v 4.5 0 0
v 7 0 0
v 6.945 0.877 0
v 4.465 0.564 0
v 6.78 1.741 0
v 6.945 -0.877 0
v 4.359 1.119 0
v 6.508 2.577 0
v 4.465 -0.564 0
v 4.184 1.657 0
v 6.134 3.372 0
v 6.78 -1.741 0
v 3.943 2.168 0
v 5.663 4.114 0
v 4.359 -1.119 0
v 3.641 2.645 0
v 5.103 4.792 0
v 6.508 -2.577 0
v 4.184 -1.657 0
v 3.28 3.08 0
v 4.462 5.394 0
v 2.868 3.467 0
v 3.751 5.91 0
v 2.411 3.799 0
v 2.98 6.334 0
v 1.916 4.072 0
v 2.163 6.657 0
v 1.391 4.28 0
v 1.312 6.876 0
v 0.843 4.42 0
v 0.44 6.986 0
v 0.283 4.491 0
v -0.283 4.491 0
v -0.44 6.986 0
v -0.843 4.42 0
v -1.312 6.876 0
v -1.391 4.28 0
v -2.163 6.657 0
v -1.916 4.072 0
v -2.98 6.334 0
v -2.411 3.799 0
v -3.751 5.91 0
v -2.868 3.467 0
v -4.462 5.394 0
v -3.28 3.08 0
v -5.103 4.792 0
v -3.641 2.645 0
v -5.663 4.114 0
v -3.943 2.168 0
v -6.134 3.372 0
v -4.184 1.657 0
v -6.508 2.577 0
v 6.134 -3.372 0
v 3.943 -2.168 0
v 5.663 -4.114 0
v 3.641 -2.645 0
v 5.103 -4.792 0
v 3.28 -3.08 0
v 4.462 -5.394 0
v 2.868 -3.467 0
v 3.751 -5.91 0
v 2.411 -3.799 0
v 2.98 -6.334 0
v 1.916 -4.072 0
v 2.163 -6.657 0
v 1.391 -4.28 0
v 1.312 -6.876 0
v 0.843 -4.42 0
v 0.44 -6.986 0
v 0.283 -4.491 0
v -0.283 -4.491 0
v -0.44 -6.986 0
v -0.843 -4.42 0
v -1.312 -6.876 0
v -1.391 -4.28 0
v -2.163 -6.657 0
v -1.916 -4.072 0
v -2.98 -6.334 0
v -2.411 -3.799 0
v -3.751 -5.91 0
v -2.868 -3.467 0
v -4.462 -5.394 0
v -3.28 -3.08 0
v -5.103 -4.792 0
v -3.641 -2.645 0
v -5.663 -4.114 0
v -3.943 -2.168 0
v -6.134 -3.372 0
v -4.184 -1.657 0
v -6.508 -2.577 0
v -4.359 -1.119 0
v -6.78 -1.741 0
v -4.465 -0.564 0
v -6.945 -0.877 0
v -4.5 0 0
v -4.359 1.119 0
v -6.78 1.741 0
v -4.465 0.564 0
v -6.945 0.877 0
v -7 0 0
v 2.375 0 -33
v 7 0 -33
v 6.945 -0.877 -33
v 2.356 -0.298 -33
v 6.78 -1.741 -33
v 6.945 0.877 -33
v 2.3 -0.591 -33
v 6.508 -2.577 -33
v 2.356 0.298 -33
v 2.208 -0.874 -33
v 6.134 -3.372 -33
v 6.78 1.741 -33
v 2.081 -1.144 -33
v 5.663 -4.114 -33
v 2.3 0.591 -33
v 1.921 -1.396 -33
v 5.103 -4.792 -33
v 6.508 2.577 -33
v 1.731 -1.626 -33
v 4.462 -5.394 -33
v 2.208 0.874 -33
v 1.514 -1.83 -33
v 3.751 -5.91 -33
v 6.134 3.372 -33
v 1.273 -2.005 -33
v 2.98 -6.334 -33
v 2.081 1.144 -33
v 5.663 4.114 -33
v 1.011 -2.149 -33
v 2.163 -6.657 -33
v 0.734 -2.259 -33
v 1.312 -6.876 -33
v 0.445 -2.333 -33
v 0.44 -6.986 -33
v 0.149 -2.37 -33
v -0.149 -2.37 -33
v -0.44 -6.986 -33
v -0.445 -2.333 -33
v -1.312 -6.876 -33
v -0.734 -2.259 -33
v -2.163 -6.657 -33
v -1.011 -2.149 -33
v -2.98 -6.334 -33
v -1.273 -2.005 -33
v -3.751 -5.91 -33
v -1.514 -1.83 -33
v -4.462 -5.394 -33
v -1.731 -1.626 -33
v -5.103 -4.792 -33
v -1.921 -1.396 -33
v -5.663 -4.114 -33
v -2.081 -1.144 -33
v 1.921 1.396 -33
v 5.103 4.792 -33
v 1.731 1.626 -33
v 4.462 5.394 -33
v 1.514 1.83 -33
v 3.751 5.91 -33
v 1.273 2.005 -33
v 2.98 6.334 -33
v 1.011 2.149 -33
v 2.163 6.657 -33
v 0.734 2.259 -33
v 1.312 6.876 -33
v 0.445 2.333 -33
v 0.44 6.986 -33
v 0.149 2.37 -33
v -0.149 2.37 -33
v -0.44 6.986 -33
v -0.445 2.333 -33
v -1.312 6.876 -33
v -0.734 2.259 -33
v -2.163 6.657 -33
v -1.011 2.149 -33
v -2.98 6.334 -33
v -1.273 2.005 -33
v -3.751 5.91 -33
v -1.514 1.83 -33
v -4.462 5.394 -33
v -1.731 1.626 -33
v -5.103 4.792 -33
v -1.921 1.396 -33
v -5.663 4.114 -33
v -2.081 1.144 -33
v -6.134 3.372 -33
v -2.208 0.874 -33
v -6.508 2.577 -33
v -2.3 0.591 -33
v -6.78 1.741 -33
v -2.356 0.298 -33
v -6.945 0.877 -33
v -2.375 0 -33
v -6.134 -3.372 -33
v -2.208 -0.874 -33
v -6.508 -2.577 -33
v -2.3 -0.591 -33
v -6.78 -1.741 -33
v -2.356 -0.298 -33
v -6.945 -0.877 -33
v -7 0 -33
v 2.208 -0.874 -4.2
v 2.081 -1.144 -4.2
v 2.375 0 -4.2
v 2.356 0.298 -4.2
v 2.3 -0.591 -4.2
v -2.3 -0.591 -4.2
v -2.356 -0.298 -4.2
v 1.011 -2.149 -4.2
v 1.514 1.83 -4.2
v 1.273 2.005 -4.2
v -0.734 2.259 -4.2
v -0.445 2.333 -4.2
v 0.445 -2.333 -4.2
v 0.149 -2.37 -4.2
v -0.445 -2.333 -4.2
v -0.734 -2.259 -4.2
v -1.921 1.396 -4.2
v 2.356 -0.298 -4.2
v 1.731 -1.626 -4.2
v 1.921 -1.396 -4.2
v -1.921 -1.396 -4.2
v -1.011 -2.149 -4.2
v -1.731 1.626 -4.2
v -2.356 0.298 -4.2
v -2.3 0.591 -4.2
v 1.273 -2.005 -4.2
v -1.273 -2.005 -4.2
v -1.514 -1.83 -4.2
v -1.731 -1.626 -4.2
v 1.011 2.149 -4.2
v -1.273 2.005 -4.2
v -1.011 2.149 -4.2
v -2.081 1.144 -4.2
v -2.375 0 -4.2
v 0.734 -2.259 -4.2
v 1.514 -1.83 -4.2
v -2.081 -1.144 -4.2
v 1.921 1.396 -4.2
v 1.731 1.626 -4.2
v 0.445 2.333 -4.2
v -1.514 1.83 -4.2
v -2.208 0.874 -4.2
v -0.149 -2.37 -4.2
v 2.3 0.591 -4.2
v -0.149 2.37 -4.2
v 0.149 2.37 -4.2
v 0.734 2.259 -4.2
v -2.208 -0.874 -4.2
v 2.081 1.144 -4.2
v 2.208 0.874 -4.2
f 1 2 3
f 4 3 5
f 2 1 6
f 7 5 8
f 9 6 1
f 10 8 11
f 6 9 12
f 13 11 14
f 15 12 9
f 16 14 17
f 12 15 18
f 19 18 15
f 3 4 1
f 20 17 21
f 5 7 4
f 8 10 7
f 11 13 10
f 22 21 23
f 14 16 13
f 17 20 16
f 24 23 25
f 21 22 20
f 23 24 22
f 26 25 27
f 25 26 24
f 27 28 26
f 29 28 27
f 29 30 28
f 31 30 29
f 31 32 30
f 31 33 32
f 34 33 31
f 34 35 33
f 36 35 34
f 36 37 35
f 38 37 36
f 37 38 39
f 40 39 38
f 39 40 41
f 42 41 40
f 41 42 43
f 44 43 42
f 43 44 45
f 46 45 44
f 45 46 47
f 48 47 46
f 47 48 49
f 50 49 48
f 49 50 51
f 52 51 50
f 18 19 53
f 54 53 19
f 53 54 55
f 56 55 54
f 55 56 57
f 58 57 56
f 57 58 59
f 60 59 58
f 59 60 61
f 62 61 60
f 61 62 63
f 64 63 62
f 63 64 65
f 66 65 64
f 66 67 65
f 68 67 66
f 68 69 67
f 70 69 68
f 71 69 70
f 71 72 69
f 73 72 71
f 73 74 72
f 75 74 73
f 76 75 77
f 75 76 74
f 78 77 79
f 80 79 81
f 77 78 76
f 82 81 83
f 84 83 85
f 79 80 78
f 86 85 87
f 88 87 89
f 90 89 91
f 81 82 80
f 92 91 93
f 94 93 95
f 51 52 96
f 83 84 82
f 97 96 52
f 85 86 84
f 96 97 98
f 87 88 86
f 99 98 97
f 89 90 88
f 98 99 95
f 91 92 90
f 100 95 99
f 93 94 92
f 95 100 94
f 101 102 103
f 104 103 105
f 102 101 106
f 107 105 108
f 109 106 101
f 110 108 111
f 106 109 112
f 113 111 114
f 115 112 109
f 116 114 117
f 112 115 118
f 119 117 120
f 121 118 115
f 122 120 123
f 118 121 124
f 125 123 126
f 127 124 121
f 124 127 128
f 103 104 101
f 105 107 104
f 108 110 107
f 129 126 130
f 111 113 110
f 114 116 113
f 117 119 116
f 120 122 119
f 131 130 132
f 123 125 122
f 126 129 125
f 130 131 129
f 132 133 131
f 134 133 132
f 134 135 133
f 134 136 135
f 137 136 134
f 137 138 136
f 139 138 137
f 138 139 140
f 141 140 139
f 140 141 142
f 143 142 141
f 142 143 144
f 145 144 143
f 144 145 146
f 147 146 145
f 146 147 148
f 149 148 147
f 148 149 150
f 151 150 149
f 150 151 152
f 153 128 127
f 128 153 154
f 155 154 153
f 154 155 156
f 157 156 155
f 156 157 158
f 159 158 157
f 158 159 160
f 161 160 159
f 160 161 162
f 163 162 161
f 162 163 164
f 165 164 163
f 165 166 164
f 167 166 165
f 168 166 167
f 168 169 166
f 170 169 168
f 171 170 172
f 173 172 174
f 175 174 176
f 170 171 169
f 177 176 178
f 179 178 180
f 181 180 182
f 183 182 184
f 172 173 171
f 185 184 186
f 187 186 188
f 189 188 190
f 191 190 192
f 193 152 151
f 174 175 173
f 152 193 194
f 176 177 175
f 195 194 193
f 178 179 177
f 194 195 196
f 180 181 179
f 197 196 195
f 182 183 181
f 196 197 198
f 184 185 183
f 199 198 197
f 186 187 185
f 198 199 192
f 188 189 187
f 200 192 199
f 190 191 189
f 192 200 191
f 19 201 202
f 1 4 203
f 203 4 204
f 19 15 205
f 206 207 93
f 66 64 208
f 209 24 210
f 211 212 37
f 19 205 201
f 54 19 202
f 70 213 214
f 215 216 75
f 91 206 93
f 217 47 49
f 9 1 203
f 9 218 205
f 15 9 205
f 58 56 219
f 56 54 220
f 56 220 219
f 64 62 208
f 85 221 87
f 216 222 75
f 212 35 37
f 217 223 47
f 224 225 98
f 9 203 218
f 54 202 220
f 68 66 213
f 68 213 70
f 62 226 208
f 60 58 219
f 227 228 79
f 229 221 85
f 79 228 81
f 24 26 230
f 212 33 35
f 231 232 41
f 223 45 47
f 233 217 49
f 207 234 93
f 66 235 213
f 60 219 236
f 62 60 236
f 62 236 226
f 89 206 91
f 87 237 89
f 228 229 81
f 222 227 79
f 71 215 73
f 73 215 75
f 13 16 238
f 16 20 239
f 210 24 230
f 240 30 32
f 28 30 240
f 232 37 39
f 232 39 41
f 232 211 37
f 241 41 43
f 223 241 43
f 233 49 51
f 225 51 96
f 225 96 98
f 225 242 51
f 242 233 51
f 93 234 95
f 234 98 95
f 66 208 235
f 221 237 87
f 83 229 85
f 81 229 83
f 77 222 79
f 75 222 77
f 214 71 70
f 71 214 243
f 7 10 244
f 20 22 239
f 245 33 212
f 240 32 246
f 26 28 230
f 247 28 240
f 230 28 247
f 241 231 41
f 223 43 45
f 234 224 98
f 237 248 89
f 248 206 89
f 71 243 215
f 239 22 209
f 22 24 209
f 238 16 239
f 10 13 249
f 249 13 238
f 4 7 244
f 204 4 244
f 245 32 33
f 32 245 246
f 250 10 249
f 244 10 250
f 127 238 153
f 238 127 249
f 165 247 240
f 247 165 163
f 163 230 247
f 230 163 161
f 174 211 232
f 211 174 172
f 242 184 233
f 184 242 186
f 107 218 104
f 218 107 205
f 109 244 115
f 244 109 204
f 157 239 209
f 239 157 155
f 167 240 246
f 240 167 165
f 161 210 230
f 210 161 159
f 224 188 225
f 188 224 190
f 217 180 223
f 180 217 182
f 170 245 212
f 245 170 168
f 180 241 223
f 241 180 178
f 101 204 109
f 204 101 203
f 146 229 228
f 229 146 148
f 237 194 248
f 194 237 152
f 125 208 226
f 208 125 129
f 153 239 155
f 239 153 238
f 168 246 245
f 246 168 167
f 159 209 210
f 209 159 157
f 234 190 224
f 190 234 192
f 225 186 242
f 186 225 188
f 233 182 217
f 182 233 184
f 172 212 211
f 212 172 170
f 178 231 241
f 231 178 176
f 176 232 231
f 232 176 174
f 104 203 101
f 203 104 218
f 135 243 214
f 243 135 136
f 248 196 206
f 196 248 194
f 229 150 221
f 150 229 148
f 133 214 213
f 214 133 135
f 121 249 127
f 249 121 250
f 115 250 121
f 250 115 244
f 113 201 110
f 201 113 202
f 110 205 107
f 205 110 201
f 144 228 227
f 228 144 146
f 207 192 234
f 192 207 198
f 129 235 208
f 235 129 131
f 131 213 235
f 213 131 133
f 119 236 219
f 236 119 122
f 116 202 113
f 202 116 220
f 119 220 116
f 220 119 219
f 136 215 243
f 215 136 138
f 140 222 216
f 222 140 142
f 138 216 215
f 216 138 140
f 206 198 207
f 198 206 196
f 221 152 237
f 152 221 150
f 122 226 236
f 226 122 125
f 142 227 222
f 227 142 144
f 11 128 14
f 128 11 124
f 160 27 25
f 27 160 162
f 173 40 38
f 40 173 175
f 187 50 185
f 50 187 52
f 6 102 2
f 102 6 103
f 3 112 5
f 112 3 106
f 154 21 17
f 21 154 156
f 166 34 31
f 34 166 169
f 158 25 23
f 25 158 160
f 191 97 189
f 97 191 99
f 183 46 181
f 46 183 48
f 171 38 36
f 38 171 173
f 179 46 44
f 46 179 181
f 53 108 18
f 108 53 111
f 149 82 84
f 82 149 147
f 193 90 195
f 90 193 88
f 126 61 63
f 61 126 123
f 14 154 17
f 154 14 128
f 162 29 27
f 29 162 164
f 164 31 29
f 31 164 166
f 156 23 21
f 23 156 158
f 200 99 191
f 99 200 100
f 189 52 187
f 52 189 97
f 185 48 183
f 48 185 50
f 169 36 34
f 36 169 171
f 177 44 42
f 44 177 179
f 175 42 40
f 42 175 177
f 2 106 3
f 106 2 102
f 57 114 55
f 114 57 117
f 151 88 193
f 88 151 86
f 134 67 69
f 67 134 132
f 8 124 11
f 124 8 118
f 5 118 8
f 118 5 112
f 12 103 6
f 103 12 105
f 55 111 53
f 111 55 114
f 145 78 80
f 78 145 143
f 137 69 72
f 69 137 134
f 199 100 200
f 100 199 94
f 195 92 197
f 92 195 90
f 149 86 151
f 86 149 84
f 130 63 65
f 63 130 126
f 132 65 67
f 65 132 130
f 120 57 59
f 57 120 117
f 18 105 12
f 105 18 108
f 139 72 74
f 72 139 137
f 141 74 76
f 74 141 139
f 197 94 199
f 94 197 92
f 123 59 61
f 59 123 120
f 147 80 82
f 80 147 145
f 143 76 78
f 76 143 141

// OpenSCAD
$fn = 50;


difference() {
	union() {
		translate(v = [0, 0, -33.0000000000]) {
			cylinder(h = 33, r = 7.0000000000);
		}
		cylinder(h = 0, r = 10.0000000000);
	}
	union() {
		translate(v = [0, 0, 0]) {
			rotate(a = [0, 0, 0]) {
				difference() {
					union() {
						#translate(v = [0, 0, -33.0000000000]) {
							cylinder(h = 33, r = 2.2500000000);
						}
						#translate(v = [0, 0, -4.2000000000]) {
							cylinder(h = 4.2000000000, r1 = 2.3750000000, r2 = 4.5000000000);
						}
						#translate(v = [0, 0, -33.0000000000]) {
							cylinder(h = 33, r = 2.3750000000);
						}
						#translate(v = [0, 0, -33.0000000000]) {
							cylinder(h = 33, r = 2.2500000000);
						}
					}
					union();
				}
			}
		}
	}
}
